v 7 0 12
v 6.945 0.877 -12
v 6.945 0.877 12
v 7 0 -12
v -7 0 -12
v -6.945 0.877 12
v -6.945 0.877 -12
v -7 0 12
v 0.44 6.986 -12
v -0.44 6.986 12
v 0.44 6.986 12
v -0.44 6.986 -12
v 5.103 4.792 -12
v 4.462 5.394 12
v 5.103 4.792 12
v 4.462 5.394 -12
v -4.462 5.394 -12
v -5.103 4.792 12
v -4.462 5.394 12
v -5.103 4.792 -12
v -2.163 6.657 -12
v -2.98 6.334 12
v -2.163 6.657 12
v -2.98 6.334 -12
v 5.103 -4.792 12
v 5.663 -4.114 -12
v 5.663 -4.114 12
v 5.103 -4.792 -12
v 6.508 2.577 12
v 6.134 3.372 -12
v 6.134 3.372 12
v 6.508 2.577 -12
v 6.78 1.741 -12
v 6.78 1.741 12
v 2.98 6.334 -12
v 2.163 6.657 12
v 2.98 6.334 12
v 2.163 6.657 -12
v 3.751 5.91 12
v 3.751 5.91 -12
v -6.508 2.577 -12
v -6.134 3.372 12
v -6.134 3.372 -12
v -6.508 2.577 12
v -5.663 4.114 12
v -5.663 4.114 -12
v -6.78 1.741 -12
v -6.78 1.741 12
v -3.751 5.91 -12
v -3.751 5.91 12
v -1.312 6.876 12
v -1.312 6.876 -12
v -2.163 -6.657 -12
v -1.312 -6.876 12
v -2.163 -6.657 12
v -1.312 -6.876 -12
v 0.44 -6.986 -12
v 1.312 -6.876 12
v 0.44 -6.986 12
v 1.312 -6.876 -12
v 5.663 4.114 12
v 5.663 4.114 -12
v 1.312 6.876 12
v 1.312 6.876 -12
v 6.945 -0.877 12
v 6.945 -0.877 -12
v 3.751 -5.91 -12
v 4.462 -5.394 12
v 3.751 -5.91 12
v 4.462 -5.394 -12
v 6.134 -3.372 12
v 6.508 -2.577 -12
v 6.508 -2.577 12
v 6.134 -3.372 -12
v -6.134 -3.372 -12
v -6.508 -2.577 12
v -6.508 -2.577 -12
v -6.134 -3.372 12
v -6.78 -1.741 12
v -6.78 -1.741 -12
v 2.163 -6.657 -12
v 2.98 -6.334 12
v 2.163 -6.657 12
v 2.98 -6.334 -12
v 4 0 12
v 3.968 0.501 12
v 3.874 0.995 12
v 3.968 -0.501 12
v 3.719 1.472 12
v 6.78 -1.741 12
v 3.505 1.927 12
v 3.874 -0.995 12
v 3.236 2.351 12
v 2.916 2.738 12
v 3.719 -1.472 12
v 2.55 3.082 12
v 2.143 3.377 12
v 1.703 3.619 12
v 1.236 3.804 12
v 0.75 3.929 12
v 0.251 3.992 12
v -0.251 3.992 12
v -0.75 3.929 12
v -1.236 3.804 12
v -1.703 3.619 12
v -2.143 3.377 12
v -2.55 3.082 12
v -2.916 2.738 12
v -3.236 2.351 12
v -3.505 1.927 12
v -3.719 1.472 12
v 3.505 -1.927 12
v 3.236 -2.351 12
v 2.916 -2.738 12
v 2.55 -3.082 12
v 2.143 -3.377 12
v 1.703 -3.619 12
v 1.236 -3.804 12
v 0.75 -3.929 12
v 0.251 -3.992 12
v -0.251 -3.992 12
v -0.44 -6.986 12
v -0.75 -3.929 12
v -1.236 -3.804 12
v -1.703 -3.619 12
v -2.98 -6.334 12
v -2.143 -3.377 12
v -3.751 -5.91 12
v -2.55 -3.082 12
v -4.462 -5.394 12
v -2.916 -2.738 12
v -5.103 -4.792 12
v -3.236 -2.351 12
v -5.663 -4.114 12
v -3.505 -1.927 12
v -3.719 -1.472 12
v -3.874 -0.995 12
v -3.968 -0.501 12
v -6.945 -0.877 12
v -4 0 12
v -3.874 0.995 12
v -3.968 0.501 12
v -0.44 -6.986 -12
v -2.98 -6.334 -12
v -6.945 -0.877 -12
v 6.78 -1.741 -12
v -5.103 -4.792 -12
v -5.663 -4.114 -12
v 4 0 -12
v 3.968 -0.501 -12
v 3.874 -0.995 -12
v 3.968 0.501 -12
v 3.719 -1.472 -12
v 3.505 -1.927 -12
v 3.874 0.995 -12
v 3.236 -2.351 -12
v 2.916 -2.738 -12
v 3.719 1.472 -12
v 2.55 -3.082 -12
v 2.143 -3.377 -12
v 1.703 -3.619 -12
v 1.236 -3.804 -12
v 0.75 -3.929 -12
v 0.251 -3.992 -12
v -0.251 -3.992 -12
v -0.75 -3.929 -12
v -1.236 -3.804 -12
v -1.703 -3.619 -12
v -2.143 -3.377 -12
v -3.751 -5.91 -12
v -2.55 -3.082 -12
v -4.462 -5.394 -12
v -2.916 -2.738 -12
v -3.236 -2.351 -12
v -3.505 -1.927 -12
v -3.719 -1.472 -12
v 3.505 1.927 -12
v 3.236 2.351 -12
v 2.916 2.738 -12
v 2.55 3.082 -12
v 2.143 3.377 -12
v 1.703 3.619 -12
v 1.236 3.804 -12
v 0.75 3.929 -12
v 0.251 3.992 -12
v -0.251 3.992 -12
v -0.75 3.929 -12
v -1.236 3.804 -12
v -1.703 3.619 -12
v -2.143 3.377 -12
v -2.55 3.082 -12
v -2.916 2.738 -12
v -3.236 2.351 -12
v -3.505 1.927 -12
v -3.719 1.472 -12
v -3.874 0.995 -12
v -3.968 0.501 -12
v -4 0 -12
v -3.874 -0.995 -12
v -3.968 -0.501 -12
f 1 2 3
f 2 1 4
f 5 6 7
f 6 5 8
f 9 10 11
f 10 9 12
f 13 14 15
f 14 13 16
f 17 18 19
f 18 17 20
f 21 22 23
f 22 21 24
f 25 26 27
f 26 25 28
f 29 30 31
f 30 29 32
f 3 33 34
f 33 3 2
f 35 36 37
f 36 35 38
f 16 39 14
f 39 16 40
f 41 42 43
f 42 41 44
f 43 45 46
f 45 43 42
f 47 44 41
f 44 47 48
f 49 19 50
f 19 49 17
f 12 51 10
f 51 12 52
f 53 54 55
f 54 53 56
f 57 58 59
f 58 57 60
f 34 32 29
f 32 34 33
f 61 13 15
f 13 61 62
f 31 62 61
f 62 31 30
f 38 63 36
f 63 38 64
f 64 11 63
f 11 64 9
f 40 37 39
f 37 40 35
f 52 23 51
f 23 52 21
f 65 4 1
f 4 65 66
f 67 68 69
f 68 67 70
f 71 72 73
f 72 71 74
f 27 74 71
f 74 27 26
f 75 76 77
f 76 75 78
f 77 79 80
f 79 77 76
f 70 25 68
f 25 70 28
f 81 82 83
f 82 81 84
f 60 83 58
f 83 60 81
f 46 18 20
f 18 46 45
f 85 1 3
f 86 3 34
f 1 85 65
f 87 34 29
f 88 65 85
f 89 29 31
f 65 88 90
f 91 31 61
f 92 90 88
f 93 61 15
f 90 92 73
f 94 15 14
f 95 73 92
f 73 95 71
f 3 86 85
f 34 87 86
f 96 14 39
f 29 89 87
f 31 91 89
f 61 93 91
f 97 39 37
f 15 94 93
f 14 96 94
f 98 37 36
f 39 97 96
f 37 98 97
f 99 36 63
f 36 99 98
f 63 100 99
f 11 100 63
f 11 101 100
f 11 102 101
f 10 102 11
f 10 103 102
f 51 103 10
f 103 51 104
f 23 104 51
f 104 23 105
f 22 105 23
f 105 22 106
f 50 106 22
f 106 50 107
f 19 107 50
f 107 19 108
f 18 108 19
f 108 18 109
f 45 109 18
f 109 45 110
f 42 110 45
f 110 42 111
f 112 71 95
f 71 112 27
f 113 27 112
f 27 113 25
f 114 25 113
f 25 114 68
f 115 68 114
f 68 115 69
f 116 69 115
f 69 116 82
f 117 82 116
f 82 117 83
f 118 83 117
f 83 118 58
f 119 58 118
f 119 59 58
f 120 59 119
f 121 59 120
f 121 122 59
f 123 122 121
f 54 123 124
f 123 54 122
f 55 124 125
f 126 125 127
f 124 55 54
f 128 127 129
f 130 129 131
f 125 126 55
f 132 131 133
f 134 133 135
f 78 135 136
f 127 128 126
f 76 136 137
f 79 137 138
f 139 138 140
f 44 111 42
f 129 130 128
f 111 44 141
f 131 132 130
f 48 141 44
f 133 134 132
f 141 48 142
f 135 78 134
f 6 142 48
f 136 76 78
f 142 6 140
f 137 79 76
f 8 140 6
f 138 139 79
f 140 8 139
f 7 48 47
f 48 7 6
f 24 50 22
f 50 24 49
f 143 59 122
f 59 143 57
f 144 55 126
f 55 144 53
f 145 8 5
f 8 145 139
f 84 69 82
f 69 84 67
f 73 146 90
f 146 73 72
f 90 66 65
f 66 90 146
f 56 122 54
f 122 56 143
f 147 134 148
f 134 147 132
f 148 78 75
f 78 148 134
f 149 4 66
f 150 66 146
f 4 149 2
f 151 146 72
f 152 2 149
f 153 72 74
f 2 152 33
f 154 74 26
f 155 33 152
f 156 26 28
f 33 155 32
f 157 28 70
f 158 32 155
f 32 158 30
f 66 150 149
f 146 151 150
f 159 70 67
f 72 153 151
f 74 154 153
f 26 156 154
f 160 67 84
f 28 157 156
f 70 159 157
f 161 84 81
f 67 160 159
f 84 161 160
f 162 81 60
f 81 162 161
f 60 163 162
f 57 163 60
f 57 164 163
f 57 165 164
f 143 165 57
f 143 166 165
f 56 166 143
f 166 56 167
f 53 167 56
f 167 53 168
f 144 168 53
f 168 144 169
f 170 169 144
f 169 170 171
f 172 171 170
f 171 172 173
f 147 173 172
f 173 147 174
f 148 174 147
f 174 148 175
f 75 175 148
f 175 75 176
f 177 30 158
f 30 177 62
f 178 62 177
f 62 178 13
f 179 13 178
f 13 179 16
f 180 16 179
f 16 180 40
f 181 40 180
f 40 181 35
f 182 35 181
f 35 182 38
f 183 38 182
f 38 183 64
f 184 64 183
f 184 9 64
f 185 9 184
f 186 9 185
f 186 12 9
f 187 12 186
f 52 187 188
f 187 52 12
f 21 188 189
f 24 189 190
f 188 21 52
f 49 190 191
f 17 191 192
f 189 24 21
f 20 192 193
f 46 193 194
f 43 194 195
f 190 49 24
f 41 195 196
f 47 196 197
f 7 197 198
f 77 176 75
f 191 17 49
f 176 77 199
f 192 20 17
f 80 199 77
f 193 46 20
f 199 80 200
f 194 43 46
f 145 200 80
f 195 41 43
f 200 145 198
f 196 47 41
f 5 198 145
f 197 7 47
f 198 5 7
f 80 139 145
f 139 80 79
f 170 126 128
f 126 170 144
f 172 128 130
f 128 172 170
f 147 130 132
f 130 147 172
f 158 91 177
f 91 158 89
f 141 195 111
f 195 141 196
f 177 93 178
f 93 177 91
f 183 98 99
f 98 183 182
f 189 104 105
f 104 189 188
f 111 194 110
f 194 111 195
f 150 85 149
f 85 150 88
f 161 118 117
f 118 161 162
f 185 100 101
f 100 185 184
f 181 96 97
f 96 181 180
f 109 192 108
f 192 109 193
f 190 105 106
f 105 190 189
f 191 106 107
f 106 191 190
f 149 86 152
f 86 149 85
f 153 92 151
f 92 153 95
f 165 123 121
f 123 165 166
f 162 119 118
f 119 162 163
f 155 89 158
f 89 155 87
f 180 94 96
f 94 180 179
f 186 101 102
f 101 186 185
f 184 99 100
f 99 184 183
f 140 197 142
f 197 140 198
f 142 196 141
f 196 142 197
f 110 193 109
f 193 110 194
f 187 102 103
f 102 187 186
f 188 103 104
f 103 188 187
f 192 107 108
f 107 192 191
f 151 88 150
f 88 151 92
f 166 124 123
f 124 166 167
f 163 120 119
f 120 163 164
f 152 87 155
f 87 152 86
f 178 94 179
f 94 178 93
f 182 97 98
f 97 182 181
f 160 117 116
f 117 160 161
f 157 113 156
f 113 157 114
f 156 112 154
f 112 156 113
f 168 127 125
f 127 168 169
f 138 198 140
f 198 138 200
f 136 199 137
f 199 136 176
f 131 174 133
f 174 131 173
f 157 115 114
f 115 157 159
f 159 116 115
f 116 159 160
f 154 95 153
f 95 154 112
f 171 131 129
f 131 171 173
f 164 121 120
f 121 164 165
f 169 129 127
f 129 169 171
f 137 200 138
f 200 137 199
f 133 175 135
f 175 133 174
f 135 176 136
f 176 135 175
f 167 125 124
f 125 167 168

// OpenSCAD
$fn = 50;


difference() {
	union() {
		translate(v = [0, 0, -12.0000000000]) {
			cylinder(h = 24, r = 7.0000000000);
		}
	}
	union() {
		translate(v = [0, 0, -100.0000000000]) {
			cylinder(h = 200, r = 4.0000000000);
		}
	}
}
